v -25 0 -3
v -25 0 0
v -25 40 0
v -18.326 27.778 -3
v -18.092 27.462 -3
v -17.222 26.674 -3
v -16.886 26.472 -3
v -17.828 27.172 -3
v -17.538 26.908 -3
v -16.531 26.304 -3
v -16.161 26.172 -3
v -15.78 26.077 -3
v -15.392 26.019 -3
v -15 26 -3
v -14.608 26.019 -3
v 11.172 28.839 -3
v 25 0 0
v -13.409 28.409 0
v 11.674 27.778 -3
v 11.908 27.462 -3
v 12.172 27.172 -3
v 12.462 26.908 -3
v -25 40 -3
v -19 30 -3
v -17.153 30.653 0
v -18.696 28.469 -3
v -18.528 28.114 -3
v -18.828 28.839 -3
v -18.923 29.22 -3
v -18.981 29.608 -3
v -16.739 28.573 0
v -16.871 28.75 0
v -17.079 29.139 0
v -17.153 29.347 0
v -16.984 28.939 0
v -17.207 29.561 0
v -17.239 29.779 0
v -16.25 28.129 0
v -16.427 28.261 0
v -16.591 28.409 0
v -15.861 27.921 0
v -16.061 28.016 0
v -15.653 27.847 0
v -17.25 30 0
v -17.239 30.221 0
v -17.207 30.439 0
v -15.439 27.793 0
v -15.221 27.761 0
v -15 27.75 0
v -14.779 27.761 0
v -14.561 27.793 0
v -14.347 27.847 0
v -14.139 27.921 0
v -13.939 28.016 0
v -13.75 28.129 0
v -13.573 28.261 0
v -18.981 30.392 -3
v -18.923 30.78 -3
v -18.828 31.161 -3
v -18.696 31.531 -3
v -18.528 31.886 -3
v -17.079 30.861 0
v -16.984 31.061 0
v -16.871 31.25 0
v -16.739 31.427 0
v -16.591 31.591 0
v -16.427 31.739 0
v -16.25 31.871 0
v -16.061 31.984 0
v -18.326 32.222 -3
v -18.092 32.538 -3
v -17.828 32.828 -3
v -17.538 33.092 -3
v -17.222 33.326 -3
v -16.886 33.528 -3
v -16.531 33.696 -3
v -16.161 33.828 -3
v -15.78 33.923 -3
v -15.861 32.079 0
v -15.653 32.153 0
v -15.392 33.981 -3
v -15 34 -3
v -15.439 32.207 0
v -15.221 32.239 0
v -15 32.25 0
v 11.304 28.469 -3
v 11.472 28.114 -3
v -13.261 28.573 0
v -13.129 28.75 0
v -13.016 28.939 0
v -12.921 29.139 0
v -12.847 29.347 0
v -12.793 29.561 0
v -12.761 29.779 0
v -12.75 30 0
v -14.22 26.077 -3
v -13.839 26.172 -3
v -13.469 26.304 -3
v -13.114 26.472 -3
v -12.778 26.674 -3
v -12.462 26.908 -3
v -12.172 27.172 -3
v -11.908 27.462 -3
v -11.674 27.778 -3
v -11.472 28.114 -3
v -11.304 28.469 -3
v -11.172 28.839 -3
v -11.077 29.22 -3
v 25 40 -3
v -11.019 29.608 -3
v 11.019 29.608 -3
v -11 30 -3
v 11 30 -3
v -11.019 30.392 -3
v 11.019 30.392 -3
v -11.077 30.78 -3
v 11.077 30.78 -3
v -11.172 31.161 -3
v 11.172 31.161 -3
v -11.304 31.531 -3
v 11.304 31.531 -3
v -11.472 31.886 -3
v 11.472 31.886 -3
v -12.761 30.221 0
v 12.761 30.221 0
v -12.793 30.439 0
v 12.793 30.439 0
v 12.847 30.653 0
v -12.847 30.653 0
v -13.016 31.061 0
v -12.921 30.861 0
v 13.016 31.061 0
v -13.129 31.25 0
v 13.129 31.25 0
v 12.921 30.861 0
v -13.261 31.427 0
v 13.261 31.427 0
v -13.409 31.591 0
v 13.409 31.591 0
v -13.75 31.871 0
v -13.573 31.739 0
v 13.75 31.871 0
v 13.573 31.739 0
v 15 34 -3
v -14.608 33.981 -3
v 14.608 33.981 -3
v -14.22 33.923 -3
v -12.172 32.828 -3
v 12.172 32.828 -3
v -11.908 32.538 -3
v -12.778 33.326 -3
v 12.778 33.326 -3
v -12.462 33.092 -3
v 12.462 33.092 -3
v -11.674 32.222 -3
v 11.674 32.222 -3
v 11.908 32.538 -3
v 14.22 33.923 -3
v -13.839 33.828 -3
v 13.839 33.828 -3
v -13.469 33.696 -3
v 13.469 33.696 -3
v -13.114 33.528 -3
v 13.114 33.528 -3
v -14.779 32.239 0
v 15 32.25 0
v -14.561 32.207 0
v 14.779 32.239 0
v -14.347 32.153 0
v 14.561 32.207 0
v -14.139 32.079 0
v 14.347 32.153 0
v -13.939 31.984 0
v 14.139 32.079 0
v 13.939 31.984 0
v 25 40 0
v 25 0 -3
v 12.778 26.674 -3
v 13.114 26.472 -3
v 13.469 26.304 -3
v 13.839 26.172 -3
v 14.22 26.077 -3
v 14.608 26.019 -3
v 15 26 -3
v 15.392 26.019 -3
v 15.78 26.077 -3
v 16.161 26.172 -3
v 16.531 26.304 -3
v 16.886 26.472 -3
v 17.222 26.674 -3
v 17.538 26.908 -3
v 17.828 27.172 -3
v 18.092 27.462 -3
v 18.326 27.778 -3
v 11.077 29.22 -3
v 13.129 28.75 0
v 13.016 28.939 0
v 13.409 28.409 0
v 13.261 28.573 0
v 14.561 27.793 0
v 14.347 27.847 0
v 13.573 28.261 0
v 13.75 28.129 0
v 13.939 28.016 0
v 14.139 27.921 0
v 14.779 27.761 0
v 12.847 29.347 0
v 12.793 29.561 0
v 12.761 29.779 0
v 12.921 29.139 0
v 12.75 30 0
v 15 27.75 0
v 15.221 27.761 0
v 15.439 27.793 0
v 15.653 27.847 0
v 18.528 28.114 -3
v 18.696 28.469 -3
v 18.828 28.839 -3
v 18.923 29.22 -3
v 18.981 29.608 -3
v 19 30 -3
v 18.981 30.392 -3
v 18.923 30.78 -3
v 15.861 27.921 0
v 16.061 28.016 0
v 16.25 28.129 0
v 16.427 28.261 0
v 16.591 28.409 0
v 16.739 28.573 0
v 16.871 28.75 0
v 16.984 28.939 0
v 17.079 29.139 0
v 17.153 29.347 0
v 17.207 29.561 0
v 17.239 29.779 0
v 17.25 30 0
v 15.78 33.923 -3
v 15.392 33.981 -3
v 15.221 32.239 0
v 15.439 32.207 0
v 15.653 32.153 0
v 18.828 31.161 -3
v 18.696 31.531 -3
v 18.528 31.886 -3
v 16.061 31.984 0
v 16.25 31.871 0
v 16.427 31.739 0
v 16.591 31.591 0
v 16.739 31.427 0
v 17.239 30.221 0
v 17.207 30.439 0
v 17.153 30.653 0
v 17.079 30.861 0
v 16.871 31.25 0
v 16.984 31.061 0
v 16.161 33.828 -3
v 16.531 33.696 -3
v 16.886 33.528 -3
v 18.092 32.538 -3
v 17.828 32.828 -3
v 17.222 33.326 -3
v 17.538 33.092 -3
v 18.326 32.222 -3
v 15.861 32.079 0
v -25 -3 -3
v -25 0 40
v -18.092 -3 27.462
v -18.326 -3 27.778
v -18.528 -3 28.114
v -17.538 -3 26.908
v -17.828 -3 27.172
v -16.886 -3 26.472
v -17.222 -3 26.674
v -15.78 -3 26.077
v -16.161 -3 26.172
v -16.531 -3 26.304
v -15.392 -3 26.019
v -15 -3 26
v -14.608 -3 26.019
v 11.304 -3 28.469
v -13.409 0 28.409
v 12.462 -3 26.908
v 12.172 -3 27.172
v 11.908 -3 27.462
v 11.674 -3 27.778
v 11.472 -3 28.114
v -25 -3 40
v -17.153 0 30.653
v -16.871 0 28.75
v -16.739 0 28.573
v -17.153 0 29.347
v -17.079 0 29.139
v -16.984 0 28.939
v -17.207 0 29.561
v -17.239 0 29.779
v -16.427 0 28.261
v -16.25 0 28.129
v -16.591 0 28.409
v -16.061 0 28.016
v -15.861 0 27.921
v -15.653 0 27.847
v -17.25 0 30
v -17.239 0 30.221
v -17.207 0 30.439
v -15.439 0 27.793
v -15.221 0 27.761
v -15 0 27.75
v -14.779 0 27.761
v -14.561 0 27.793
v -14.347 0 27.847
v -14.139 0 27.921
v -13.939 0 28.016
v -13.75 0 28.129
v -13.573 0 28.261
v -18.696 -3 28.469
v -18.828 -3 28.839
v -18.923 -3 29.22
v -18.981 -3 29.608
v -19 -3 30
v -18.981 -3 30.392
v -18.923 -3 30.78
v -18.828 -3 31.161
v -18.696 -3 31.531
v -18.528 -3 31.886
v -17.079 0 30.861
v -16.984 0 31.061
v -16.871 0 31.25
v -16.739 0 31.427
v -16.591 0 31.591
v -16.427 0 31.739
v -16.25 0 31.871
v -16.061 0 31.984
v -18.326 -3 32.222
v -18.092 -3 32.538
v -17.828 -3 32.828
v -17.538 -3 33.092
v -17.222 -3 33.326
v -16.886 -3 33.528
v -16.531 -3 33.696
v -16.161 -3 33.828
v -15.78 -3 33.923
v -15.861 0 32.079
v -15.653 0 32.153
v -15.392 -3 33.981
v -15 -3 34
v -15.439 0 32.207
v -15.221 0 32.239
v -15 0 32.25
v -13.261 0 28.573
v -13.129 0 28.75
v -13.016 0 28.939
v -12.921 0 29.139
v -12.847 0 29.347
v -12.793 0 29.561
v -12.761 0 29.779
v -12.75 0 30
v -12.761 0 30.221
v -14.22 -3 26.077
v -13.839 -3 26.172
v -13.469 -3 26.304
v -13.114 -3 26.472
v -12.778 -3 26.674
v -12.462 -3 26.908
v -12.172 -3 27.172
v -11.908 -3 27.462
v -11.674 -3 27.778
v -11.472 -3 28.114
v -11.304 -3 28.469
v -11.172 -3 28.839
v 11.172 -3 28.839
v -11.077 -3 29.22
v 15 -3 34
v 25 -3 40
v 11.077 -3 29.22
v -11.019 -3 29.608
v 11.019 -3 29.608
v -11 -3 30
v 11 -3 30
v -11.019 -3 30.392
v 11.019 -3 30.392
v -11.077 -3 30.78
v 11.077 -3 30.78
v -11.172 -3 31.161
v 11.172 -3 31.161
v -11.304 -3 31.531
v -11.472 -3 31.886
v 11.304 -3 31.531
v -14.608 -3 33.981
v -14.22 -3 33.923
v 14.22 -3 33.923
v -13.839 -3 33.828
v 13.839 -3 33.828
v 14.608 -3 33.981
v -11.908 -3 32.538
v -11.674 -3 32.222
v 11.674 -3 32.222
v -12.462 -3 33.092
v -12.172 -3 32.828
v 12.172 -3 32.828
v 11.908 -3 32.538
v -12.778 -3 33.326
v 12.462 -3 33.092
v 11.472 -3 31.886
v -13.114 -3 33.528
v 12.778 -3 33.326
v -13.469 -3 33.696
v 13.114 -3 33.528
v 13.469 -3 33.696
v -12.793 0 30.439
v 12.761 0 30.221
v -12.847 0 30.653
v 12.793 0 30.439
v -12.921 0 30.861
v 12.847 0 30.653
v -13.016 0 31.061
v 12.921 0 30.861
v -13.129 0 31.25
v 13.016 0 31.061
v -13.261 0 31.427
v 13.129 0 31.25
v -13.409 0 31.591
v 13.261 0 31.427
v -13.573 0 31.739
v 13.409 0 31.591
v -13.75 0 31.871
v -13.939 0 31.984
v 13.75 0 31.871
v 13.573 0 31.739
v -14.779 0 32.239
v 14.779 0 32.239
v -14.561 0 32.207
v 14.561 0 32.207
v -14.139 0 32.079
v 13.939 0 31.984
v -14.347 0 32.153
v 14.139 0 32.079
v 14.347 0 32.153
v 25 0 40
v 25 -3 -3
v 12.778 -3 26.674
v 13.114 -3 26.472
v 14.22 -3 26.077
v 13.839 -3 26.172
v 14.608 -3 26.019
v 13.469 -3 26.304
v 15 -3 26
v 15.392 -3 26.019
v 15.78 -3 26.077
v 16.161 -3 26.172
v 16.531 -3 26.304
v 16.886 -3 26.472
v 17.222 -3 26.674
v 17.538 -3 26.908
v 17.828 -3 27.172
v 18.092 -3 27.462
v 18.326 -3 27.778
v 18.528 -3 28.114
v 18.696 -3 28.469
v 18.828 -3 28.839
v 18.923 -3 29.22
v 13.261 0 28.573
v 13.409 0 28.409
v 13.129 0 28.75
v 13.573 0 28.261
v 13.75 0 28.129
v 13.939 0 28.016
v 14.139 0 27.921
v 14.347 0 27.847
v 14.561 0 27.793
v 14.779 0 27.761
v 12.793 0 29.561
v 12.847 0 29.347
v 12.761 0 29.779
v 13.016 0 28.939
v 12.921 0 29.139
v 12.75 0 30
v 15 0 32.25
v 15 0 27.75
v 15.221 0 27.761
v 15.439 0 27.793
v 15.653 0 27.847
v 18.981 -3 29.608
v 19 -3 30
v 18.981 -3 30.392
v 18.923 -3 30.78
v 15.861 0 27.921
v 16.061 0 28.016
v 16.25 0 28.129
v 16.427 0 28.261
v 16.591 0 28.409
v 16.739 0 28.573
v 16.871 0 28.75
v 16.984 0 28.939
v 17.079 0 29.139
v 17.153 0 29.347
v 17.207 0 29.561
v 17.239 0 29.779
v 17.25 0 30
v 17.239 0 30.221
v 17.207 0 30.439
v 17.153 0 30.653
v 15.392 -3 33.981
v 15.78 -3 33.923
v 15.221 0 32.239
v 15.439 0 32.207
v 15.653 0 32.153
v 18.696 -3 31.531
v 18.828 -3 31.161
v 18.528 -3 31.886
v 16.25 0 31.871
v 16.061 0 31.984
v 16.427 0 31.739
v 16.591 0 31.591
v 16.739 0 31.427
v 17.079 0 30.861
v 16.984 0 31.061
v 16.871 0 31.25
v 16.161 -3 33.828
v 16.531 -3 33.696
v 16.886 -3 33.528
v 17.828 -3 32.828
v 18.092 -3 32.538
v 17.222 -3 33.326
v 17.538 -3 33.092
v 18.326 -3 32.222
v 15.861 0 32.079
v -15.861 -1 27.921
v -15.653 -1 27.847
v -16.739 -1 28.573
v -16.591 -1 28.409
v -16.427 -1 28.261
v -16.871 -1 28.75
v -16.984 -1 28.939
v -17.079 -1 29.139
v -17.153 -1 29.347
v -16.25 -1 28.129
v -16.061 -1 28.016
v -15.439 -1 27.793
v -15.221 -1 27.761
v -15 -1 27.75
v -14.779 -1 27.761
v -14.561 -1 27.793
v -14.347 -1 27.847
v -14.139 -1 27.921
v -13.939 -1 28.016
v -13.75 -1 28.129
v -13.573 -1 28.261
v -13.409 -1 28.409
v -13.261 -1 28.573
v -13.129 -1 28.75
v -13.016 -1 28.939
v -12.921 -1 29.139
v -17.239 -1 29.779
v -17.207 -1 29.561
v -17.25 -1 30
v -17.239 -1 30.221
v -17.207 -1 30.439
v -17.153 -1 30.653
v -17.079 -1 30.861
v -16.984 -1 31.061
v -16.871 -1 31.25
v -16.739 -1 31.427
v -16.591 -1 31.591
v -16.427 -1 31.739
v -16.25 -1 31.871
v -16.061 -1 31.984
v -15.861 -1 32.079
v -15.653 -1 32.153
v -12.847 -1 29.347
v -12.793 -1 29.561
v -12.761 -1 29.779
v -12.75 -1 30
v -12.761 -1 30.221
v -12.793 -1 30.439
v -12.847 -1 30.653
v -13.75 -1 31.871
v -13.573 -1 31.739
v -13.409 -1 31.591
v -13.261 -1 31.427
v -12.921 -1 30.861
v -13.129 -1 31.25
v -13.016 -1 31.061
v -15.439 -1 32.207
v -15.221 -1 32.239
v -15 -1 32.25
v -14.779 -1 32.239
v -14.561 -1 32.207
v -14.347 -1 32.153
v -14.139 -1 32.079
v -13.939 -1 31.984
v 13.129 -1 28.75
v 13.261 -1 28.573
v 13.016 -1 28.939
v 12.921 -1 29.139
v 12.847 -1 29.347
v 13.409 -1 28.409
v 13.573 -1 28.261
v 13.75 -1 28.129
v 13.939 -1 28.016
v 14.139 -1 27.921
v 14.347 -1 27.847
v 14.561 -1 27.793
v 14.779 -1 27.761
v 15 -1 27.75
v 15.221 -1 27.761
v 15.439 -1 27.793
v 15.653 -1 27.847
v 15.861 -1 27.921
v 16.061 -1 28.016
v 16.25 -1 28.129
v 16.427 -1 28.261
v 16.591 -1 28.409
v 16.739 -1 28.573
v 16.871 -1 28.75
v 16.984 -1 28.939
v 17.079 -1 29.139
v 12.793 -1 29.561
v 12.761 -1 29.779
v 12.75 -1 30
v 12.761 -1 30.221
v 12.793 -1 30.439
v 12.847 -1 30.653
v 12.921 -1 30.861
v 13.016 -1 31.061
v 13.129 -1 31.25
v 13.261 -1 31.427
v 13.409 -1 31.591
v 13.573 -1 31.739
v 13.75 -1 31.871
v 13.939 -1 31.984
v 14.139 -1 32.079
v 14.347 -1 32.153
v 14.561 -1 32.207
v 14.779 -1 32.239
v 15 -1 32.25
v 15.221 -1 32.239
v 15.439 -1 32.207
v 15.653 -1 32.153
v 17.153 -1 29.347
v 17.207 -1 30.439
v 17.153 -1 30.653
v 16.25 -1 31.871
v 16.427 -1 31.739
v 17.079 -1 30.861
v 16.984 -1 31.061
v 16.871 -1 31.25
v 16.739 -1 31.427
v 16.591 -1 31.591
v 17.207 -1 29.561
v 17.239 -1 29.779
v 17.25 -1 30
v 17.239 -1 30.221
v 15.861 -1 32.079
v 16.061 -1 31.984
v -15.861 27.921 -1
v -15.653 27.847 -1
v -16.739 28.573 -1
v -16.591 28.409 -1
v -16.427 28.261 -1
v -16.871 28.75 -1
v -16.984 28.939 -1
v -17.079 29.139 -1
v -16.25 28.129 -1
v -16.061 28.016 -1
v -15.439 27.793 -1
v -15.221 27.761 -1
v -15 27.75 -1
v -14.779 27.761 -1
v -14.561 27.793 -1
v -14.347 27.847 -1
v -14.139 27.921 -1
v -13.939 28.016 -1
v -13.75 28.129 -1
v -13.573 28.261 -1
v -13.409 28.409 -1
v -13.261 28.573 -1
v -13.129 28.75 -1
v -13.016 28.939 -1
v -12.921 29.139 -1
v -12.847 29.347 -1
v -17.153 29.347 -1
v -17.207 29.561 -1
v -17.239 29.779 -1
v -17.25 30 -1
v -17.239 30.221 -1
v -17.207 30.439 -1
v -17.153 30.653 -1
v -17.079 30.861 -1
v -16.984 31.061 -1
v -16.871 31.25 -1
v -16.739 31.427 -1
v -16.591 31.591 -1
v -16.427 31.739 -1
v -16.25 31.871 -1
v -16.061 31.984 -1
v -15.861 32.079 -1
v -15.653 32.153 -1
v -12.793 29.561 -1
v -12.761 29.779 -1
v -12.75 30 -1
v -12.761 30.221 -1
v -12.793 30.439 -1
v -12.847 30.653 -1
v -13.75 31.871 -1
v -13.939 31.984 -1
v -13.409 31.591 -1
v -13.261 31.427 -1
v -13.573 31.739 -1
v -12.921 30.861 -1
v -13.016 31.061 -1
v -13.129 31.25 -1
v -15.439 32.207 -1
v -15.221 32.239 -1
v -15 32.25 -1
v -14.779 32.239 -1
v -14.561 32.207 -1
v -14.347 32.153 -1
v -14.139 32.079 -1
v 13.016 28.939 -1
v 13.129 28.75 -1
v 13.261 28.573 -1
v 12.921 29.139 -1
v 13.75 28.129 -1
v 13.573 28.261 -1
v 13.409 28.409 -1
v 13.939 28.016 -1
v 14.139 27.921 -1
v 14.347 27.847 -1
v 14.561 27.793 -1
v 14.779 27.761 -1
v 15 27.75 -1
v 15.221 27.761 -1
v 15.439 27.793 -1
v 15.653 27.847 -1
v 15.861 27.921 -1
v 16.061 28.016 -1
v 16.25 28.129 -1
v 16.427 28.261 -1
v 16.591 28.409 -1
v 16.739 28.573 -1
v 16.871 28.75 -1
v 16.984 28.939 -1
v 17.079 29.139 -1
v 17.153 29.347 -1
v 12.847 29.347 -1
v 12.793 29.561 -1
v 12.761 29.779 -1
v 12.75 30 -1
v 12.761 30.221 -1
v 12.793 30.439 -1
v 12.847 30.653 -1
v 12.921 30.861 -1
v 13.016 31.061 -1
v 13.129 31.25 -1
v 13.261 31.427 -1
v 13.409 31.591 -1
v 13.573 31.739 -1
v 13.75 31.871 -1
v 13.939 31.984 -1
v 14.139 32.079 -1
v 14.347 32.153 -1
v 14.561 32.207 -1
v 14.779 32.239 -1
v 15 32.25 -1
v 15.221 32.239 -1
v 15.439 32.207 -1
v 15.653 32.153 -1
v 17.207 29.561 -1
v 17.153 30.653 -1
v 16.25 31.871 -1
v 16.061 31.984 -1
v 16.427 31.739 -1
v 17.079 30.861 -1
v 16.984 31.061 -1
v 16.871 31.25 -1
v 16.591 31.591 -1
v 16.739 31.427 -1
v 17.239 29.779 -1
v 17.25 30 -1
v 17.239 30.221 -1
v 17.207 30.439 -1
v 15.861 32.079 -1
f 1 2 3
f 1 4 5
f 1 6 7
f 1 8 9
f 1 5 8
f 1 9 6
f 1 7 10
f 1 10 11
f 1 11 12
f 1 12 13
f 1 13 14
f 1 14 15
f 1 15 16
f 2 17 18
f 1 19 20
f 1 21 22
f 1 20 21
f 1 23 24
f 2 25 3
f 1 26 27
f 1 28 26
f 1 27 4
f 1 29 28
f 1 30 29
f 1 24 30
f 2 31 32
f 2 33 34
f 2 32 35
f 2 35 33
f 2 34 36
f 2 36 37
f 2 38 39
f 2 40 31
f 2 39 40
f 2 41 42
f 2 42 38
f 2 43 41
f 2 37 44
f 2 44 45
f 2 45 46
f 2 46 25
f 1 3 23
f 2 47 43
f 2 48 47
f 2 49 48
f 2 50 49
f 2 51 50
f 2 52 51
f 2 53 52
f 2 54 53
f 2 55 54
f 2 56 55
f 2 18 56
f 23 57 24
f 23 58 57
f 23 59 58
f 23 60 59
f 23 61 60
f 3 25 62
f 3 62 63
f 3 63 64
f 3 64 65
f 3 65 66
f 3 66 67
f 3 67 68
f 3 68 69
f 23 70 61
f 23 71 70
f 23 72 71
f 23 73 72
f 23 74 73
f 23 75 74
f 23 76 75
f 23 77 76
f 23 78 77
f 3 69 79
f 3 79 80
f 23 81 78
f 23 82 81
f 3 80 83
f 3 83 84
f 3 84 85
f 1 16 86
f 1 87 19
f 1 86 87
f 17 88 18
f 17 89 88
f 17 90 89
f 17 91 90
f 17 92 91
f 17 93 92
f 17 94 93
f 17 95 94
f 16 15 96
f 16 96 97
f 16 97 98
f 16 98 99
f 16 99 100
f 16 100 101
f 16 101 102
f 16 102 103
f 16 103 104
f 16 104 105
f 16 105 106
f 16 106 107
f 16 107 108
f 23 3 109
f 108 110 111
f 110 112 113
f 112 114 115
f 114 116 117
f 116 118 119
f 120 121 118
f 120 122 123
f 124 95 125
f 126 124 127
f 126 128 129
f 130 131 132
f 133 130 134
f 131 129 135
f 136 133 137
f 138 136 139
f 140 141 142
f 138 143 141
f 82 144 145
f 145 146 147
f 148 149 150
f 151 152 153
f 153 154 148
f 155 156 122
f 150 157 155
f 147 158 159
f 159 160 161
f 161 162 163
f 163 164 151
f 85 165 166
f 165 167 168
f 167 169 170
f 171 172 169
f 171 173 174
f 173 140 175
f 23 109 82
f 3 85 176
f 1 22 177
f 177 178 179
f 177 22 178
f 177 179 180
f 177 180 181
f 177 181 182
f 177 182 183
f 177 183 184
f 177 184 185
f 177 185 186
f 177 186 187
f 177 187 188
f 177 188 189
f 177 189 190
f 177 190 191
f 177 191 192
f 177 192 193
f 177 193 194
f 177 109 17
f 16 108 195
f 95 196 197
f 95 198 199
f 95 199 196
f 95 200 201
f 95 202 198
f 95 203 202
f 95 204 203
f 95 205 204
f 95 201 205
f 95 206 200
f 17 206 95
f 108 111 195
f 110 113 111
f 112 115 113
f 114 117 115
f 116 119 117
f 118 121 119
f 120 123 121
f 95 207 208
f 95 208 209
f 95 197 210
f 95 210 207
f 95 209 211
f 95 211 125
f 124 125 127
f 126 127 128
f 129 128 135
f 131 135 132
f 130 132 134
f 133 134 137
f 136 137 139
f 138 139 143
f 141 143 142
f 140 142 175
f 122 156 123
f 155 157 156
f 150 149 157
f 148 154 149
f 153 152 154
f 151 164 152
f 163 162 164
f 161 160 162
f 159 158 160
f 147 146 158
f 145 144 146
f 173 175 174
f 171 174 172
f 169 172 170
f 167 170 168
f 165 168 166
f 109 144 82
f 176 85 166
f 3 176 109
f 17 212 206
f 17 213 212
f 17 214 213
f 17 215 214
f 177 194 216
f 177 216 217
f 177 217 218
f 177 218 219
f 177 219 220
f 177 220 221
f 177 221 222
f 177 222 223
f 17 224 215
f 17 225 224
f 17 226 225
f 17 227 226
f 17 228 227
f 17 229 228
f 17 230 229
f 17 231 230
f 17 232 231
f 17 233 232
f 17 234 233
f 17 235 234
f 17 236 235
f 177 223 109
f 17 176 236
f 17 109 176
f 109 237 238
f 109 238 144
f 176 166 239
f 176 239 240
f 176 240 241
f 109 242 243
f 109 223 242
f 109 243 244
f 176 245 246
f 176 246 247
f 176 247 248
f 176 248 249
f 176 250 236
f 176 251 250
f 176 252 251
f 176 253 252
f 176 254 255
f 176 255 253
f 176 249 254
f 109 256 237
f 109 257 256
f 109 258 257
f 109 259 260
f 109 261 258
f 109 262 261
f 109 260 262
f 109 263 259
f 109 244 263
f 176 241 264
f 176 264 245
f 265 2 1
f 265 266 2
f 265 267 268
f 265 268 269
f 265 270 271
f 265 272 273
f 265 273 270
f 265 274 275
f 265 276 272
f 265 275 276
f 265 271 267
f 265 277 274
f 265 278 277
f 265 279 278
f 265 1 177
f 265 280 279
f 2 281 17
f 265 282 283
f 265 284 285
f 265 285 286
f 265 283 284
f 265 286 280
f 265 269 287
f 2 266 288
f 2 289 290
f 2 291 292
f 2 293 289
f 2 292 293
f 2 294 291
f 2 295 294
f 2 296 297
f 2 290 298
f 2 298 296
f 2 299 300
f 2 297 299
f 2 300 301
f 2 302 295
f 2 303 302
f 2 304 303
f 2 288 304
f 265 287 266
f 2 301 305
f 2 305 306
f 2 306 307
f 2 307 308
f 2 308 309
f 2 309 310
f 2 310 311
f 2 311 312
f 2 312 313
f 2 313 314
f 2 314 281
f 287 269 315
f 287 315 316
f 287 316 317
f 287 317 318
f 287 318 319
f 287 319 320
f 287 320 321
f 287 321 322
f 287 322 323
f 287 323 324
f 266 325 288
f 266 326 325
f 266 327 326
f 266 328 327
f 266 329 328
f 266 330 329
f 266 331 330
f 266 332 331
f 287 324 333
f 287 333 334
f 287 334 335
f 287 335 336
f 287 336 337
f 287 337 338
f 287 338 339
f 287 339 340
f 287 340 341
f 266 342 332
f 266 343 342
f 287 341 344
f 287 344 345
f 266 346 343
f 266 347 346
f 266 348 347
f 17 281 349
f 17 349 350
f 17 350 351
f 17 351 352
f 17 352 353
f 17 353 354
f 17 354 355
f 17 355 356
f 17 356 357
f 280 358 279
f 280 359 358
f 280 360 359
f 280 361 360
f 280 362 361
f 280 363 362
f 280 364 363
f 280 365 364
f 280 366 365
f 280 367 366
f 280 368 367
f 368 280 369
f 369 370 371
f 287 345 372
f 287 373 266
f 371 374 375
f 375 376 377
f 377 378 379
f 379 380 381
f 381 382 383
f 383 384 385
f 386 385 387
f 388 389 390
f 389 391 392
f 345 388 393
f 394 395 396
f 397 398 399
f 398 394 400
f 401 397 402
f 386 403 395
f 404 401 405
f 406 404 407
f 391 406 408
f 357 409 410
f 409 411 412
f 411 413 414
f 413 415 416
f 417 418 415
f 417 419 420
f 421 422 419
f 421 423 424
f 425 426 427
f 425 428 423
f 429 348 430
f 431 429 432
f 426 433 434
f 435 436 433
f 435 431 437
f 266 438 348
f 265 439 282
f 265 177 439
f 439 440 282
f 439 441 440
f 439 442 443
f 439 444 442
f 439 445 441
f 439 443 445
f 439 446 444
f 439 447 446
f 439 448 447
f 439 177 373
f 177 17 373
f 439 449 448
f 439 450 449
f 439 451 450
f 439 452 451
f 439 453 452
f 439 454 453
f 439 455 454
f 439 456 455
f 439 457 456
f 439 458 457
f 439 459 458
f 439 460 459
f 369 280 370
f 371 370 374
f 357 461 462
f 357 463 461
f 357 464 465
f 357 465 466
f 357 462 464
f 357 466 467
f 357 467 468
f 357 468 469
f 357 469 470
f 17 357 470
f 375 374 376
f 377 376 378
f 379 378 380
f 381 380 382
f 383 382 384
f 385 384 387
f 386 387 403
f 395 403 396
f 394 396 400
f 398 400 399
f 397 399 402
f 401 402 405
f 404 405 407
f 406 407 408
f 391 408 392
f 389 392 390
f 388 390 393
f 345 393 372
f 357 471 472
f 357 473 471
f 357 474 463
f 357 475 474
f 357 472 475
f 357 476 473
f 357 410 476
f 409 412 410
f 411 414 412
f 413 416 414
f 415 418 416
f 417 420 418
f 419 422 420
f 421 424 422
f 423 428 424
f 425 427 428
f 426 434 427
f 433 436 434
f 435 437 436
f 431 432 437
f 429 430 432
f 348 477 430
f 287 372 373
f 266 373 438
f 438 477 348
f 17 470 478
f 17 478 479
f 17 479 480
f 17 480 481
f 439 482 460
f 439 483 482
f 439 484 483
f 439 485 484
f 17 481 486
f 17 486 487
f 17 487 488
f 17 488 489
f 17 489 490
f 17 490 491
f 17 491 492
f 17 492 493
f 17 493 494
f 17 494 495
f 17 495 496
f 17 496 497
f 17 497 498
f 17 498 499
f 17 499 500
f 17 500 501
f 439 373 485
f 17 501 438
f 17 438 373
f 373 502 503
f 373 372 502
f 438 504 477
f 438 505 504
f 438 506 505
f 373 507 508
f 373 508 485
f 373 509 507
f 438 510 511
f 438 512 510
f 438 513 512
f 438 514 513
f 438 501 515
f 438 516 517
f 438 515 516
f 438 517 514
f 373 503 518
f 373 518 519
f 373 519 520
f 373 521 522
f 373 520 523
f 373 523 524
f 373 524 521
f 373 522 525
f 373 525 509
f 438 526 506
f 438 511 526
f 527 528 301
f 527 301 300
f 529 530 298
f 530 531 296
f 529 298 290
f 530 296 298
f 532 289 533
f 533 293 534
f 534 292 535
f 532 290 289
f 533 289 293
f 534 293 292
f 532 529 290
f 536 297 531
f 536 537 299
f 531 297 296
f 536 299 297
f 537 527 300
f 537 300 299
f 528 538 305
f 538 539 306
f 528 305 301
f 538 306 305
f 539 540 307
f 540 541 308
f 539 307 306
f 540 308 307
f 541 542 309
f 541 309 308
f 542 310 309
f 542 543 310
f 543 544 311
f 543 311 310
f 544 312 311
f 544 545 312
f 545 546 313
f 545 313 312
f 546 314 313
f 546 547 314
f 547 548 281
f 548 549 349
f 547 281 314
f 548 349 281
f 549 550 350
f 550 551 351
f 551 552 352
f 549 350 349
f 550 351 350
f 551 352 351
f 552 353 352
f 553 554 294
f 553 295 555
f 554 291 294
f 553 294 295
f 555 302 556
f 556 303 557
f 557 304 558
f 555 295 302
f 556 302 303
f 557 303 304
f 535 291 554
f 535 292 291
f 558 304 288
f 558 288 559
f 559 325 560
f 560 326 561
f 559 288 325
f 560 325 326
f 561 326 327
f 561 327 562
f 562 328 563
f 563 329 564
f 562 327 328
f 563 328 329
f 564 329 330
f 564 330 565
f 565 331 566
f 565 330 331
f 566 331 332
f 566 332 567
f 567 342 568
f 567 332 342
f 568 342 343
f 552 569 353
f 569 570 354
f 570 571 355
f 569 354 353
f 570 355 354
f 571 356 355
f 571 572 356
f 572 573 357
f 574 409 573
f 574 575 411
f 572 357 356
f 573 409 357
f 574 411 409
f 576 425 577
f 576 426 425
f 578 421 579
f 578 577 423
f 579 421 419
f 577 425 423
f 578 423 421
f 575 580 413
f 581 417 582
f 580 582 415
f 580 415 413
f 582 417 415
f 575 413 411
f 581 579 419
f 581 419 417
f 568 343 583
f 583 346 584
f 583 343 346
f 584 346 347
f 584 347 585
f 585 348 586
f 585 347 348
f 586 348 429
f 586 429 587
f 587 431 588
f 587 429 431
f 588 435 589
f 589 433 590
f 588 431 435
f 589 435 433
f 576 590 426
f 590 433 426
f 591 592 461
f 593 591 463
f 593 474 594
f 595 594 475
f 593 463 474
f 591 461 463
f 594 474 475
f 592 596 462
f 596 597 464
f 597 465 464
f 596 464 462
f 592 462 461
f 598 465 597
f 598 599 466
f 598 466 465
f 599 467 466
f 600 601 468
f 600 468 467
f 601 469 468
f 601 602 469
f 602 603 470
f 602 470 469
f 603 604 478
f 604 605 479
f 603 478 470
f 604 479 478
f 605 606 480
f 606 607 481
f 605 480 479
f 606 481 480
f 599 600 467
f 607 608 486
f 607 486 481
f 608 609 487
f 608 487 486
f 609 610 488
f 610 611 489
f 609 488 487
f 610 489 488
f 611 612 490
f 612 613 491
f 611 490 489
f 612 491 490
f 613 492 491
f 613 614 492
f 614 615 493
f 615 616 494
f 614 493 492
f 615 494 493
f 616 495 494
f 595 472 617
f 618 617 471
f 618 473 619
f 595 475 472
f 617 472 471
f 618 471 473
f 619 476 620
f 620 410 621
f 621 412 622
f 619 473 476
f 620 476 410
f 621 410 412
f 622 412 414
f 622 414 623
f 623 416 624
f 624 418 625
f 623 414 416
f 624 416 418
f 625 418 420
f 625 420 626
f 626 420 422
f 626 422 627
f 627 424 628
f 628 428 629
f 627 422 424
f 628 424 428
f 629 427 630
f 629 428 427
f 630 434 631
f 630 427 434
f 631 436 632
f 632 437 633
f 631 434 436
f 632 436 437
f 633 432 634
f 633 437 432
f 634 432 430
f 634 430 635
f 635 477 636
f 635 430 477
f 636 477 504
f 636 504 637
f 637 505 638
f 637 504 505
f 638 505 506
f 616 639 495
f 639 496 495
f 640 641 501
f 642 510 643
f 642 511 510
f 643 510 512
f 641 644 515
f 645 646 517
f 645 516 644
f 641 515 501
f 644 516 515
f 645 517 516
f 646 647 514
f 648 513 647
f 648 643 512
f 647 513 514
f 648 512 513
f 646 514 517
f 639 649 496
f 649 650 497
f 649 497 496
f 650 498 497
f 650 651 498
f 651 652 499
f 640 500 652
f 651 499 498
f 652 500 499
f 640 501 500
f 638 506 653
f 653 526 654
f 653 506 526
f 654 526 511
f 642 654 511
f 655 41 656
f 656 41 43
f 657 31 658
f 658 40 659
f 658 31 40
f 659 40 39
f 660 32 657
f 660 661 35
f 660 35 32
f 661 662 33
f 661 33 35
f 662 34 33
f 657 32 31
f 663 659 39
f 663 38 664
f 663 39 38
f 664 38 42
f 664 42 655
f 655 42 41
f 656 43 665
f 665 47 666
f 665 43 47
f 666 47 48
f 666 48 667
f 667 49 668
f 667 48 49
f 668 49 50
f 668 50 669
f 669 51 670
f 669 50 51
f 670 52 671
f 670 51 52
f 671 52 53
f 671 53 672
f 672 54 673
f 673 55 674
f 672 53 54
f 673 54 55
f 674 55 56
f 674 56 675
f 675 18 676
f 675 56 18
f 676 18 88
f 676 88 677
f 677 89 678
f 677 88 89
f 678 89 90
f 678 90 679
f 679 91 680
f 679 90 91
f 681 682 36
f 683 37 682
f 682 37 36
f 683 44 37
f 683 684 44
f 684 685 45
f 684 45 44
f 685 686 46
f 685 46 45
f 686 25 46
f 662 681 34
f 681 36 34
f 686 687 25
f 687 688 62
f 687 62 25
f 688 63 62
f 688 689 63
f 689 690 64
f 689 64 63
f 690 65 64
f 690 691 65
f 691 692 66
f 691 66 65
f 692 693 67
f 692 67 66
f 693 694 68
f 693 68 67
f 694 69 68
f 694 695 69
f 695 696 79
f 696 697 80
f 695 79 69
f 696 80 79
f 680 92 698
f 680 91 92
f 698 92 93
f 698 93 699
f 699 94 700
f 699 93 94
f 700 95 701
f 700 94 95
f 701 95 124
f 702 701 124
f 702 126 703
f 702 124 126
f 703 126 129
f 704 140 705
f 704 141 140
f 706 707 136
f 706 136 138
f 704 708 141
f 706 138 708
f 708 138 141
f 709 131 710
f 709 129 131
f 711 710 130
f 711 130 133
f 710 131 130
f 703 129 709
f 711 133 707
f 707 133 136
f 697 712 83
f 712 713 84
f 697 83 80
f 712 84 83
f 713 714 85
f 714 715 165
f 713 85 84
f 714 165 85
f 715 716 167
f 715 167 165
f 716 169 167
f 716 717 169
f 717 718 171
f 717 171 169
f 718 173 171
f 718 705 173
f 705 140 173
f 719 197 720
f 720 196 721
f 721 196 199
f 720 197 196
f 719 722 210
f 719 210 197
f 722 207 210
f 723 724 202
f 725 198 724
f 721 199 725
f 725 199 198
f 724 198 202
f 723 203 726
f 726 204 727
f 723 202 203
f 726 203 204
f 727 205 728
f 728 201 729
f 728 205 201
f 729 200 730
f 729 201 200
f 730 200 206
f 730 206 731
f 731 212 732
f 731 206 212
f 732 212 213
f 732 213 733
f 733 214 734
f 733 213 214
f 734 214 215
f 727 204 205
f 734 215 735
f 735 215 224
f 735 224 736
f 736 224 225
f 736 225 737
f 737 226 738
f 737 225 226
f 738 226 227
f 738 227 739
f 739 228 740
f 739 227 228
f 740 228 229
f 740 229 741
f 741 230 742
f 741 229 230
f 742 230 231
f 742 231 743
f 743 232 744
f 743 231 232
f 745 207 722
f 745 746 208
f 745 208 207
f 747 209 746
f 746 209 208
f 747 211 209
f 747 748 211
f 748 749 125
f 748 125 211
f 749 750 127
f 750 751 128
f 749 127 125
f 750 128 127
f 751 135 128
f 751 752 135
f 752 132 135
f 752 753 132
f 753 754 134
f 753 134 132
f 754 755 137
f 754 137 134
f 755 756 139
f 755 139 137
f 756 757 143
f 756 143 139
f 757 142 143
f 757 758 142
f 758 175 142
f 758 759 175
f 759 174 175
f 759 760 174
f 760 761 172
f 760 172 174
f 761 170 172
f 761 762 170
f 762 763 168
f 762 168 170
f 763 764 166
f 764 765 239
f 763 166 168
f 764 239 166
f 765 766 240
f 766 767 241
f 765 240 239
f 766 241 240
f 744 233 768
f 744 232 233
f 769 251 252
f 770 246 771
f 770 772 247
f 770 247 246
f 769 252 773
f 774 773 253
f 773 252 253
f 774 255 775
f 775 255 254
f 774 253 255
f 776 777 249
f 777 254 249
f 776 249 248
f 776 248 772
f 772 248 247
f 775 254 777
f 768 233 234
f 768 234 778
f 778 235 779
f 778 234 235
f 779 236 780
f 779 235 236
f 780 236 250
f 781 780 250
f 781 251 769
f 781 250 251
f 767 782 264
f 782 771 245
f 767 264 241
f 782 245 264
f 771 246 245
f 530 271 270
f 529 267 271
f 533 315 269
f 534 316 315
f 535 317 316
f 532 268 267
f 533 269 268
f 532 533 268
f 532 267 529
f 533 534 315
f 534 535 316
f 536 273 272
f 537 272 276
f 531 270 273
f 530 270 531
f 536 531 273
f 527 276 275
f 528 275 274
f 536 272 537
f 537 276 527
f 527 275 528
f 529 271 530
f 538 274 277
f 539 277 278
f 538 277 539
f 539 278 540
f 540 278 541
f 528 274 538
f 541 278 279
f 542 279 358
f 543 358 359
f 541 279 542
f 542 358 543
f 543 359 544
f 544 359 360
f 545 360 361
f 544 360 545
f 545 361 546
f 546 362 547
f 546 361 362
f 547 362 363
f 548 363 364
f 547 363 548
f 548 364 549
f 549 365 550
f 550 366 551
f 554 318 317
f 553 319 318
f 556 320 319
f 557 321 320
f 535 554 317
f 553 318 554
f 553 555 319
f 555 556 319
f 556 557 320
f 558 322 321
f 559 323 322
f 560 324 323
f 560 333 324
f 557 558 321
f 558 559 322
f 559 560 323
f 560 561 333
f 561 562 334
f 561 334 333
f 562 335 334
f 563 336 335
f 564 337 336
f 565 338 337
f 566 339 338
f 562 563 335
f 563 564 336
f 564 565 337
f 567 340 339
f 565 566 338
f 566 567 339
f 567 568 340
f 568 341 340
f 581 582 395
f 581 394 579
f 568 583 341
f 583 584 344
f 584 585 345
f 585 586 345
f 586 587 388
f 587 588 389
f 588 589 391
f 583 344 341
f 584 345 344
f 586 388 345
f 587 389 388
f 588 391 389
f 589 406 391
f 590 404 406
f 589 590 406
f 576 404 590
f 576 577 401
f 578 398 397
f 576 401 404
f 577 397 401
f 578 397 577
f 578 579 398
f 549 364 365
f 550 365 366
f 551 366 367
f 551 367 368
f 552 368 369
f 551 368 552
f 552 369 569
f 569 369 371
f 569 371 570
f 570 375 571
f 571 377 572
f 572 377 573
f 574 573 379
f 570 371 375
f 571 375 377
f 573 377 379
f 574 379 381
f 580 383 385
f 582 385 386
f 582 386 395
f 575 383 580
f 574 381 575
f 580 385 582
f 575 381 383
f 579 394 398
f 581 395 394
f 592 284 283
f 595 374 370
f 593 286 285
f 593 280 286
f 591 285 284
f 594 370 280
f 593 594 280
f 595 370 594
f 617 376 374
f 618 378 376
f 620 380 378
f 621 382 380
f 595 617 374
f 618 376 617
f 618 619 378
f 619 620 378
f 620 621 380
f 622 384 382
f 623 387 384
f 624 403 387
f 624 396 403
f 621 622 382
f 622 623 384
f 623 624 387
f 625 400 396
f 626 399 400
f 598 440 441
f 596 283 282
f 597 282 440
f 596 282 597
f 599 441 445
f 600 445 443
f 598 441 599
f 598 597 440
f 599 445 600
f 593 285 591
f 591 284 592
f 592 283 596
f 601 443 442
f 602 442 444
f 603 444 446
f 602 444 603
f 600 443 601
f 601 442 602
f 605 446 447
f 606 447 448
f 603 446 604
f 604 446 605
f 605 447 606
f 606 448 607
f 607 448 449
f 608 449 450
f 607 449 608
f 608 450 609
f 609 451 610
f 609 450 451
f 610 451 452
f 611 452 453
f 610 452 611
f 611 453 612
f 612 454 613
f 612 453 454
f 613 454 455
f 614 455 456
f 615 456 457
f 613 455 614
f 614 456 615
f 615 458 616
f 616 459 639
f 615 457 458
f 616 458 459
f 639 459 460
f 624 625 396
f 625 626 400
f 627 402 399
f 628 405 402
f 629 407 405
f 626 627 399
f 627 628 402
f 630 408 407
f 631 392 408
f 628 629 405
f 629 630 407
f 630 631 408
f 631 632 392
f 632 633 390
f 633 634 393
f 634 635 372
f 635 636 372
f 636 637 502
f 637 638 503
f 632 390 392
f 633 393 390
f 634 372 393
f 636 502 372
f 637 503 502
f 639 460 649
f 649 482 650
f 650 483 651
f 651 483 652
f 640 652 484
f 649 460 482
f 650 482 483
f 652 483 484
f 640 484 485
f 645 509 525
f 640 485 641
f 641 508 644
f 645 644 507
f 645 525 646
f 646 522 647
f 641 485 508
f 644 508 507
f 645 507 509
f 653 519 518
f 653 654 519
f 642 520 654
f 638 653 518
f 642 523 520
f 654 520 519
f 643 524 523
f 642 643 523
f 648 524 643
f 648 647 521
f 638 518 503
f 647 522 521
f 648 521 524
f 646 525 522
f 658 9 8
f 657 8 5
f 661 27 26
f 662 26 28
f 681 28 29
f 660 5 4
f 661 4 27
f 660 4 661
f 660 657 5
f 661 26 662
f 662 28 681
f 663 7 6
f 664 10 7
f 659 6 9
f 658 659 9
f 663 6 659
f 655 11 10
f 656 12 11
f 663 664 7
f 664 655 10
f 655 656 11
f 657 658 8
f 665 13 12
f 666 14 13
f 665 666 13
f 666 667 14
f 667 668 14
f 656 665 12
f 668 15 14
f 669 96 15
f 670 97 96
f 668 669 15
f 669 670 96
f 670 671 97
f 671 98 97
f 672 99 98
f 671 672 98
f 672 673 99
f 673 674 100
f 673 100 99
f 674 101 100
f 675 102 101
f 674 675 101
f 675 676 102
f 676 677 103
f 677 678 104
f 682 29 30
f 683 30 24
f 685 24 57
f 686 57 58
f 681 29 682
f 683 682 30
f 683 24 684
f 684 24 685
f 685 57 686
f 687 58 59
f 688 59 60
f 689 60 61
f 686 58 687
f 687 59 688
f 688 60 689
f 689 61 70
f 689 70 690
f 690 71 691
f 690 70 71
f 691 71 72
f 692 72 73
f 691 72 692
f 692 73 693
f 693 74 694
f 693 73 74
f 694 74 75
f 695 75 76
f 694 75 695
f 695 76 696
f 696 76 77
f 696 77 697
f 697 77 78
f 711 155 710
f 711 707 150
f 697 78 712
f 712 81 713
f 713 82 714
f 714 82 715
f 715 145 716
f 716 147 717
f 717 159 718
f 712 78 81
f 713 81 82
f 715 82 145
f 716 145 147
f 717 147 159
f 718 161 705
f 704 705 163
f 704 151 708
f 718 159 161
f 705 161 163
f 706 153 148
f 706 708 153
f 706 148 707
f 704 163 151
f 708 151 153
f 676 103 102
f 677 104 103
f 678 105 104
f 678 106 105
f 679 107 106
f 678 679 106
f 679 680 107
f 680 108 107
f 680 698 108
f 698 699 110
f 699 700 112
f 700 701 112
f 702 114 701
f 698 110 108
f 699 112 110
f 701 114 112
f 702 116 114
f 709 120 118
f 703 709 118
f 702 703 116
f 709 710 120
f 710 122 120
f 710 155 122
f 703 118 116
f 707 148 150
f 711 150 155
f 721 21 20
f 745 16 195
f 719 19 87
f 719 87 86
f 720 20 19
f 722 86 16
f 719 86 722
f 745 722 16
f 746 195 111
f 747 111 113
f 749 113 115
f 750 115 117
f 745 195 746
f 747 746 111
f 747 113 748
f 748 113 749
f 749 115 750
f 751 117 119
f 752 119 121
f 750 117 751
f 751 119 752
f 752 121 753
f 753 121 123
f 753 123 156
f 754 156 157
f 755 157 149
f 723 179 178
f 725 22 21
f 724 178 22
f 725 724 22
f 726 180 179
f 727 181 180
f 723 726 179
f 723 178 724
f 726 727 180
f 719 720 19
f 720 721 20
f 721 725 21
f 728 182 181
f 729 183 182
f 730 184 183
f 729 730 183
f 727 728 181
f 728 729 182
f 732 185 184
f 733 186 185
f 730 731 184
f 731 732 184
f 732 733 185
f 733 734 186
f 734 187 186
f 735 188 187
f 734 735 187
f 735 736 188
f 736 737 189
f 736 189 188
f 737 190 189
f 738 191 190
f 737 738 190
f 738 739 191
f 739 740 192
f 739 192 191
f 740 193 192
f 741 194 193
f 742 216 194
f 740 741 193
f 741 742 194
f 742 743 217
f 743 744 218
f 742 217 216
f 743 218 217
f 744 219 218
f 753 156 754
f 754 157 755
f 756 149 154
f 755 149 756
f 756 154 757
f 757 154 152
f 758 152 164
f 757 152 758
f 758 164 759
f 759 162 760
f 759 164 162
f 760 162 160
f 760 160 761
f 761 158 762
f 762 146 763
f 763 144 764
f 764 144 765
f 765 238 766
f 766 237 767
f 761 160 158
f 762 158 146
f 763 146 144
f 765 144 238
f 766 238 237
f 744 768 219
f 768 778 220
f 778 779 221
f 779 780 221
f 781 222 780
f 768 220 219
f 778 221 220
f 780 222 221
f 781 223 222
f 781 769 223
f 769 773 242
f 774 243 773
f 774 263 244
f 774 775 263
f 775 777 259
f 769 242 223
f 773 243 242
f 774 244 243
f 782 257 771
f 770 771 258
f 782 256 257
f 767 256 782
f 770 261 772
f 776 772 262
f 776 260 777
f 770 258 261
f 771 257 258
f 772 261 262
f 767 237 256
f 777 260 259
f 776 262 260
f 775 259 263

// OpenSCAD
// ============================================================
// L-Bracket (L字金具)
//   水平フランジ : 50 (X) x 40 (Y) x 3 (t)
//   垂直フランジ : 50 (X) x 3 (t) x 40 (Z)
//   内側コーナーが原点、水平面は +Y、垂直面は +Z へ伸びる
//   皿穴 M4 : 通し穴 Φ4.5 / 皿座 Φ8 x 深さ2 (外側向き)
// ============================================================

$fn = 64;

// ---- パラメータ ----------------------------------------
W        = 50;   // 幅 (X方向)
D        = 40;   // 水平フランジ奥行き (Y方向)
H        = 40;   // 垂直フランジ高さ (Z方向)
T        =  3;   // 板厚

HOLE_D   = 4.5;  // 貫通穴径
CS_D     = 8;    // 皿座面の径
CS_DEPTH = 2;    // 皿座面の深さ

EDGE     = 10;   // 面の縁からの距離
PITCH    = 30;   // 穴の左右ピッチ（中心対称）

EPS      = 0.01; // z-fighting 回避用

// ---- 皿穴モジュール ------------------------------------
// 原点を「皿座面のある外表面」に置き、-Z 方向へ材料が続く前提。
// 皿座面は +Z 側（外側）に開く。
module countersunk_hole(thickness = T) {
    // 貫通穴
    translate([0, 0, -thickness - EPS])
        cylinder(h = thickness + 2 * EPS, d = HOLE_D);

    // 皿座（テーパ部）: 外表面で Φ8 → 深さ2 で Φ4.5
    translate([0, 0, -CS_DEPTH])
        cylinder(h = CS_DEPTH, d1 = HOLE_D, d2 = CS_D);

    // 表面より上へ少し延長（開口を確実に開ける）
    cylinder(h = EPS * 2, d = CS_D);
}

// ---- 本体 ----------------------------------------------
module l_bracket() {
    difference() {
        union() {
            // 水平フランジ : Z = 0 .. -T の位置ではなく、
            // 内側コーナーを原点とするため Z = -T .. 0 に配置
            translate([-W/2, 0, -T]) cube([W, D, T]);
            // 垂直フランジ : Y = -T .. 0 に配置
            translate([-W/2, -T, -T]) cube([W, T, H + T]);
        }

        // --- 水平フランジの皿穴 (外側 = 下面 Z = -T) ---
        for (x = [-PITCH/2, PITCH/2])
            translate([x, D - EDGE, -T])
                rotate([180, 0, 0])          // 皿座を下向き(外側)へ
                    countersunk_hole(T);

        // --- 垂直フランジの皿穴 (外側 = 背面 Y = -T) ---
        for (x = [-PITCH/2, PITCH/2])
            translate([x, -T, H - EDGE])
                rotate([90, 0, 0])           // 皿座を -Y (外側)へ
                    countersunk_hole(T);
    }
}

l_bracket();
